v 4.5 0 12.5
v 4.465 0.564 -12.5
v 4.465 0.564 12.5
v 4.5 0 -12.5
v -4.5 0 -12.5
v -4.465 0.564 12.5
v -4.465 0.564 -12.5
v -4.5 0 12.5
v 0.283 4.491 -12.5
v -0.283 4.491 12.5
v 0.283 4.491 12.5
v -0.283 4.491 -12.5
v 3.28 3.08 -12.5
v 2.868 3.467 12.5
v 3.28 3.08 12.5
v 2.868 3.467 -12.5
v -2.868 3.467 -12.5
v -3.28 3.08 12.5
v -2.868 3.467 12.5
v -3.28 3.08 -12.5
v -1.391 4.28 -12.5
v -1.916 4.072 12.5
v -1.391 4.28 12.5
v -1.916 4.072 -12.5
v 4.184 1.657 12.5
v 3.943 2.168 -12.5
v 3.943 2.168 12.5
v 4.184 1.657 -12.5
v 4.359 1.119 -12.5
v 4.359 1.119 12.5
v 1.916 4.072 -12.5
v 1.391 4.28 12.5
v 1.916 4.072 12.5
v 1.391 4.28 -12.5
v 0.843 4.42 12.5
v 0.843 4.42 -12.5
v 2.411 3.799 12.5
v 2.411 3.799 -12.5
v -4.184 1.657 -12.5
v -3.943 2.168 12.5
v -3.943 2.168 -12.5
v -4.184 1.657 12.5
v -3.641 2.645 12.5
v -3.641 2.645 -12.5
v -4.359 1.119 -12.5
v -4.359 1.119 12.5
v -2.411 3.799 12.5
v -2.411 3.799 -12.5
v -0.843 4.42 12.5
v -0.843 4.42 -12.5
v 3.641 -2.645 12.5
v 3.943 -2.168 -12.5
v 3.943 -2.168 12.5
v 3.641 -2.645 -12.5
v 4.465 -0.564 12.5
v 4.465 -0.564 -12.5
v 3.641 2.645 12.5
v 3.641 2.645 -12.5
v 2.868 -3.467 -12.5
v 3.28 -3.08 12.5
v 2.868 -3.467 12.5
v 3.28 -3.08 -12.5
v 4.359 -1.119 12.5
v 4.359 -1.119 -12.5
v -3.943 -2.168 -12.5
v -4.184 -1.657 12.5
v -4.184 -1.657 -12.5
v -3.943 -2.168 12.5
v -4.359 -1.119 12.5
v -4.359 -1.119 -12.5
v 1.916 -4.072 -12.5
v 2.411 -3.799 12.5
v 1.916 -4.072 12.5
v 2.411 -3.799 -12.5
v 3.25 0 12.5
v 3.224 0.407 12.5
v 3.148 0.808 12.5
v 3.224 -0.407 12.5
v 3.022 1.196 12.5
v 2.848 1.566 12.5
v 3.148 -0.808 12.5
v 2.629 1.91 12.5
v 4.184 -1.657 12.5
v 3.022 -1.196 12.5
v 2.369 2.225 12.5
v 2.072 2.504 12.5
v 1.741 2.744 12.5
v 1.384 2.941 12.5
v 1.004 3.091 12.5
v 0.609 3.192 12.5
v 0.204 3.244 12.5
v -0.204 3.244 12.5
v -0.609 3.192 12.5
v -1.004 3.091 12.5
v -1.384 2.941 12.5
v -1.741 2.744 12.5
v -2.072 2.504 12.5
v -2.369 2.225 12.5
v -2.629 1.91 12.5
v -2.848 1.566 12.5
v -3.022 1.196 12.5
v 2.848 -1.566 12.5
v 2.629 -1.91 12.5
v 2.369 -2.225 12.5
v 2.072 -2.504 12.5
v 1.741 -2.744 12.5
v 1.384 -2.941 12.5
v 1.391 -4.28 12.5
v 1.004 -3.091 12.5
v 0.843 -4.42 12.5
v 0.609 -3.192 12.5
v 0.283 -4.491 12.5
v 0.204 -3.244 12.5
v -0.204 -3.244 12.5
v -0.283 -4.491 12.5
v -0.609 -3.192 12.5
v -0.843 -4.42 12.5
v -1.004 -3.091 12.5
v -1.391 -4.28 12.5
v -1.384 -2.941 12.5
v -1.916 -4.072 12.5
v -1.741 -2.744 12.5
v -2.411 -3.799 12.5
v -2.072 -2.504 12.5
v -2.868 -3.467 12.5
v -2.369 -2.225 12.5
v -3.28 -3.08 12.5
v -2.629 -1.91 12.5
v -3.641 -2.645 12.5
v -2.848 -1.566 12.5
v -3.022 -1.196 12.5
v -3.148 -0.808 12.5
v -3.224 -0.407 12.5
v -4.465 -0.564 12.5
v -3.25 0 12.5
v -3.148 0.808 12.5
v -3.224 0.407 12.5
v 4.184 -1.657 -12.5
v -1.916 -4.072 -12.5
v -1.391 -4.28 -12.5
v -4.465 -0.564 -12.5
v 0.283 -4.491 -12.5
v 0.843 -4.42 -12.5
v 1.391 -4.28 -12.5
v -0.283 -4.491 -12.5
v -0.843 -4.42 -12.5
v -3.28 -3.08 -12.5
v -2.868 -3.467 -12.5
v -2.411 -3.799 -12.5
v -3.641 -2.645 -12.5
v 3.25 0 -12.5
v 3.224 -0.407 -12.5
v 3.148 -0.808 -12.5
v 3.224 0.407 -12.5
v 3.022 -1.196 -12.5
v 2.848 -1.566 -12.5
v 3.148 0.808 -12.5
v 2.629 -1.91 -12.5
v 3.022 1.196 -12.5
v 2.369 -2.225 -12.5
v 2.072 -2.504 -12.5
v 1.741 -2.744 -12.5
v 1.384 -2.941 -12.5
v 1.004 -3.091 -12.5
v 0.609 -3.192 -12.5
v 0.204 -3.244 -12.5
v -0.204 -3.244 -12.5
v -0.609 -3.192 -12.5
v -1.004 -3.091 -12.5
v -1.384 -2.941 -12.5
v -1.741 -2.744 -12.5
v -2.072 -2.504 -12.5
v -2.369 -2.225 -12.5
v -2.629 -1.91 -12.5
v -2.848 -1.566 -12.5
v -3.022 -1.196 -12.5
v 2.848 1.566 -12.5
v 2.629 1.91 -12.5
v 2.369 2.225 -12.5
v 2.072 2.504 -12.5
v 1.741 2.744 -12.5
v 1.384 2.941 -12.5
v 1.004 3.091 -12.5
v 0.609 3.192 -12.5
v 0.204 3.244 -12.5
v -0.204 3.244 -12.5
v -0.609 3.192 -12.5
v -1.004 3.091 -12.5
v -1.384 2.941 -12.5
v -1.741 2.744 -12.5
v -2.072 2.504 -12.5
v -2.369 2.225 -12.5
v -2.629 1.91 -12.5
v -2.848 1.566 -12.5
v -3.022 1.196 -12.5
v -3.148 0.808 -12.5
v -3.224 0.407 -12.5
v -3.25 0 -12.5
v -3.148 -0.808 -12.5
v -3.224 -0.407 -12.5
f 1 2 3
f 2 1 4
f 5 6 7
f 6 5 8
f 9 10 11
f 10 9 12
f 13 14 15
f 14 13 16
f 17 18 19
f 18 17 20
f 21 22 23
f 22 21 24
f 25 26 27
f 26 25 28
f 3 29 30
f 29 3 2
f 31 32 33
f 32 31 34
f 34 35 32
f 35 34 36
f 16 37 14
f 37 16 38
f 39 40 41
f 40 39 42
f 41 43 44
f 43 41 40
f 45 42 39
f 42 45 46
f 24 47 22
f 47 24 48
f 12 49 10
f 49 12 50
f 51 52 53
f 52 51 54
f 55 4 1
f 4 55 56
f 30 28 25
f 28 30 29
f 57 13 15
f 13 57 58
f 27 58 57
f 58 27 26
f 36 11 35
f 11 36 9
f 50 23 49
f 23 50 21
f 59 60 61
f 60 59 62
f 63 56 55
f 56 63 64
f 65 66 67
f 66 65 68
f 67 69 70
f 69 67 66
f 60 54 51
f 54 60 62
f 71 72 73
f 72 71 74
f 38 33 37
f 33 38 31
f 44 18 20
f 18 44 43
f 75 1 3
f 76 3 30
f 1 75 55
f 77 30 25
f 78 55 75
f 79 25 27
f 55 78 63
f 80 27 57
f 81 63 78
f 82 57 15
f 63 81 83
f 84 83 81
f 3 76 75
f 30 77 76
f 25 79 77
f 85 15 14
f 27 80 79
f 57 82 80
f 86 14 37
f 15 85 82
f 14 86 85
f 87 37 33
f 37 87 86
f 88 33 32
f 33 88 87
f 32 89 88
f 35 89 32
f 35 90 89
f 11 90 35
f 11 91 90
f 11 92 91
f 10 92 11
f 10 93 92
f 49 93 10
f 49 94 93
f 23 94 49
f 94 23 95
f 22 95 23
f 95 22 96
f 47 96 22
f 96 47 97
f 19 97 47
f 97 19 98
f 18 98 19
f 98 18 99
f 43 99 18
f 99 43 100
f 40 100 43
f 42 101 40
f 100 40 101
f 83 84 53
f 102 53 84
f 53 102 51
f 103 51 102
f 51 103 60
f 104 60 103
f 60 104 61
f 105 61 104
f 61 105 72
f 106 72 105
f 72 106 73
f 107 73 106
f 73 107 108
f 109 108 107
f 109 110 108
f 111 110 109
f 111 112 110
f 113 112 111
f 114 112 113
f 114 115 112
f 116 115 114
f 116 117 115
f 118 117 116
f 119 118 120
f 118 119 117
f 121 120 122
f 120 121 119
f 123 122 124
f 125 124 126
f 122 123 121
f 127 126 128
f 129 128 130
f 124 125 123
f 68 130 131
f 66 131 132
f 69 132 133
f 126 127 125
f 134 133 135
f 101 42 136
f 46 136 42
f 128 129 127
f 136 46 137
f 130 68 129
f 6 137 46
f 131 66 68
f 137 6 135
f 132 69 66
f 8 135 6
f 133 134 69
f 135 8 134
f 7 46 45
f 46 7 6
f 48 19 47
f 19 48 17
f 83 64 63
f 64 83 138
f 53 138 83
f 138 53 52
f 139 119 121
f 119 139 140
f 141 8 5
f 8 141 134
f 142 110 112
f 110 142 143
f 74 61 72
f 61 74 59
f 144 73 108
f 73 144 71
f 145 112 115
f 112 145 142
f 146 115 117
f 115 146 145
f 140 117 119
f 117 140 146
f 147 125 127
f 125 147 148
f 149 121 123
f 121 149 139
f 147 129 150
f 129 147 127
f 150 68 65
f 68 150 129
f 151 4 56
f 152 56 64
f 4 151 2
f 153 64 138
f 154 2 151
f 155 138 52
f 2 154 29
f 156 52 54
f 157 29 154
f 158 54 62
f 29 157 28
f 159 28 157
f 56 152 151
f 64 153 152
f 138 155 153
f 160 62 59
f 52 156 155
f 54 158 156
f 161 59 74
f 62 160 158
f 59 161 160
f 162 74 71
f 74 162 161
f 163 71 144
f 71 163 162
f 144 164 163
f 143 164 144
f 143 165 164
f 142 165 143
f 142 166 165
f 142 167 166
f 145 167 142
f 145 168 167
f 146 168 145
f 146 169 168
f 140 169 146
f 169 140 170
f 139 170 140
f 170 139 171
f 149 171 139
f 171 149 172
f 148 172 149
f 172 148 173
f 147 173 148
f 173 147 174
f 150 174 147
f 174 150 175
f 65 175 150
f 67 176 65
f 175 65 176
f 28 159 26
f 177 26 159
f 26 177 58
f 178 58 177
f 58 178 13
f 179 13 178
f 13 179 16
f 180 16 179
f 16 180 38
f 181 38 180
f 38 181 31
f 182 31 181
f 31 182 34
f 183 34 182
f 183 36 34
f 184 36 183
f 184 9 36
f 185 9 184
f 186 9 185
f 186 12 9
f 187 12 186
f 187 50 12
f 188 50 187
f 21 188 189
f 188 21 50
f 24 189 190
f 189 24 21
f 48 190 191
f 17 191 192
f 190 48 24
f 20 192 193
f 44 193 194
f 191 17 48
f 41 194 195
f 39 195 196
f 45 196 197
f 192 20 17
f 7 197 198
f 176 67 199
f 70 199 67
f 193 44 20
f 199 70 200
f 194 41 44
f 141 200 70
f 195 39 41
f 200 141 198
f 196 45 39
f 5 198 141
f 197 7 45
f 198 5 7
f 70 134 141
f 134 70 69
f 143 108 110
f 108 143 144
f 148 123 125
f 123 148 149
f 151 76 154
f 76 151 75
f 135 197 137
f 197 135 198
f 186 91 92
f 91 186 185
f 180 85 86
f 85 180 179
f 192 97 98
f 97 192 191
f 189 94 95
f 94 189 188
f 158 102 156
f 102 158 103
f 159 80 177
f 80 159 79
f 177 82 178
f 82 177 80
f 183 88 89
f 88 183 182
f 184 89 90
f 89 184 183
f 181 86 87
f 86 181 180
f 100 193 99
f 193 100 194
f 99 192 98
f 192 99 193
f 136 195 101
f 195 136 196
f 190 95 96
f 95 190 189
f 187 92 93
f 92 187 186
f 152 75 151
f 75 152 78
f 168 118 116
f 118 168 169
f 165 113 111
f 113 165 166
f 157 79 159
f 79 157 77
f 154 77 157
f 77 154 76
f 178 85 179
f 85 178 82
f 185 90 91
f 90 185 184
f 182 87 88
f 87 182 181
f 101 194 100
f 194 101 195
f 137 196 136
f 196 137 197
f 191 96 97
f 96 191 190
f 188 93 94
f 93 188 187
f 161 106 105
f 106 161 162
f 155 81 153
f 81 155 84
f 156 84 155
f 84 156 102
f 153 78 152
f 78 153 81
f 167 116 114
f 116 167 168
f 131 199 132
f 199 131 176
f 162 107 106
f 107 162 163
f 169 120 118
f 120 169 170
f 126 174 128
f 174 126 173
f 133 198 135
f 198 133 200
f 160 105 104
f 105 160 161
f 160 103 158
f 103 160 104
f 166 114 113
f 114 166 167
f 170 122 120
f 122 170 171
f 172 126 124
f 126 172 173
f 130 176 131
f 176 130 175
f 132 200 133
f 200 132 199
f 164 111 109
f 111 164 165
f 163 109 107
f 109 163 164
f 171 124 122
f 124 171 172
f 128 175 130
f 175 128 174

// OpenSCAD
$fn = 50;


difference() {
	union() {
		translate(v = [0, 0, -12.5000000000]) {
			cylinder(h = 25, r = 4.5000000000);
		}
	}
	union() {
		translate(v = [0, 0, -100.0000000000]) {
			cylinder(h = 200, r = 3.2500000000);
		}
	}
}
